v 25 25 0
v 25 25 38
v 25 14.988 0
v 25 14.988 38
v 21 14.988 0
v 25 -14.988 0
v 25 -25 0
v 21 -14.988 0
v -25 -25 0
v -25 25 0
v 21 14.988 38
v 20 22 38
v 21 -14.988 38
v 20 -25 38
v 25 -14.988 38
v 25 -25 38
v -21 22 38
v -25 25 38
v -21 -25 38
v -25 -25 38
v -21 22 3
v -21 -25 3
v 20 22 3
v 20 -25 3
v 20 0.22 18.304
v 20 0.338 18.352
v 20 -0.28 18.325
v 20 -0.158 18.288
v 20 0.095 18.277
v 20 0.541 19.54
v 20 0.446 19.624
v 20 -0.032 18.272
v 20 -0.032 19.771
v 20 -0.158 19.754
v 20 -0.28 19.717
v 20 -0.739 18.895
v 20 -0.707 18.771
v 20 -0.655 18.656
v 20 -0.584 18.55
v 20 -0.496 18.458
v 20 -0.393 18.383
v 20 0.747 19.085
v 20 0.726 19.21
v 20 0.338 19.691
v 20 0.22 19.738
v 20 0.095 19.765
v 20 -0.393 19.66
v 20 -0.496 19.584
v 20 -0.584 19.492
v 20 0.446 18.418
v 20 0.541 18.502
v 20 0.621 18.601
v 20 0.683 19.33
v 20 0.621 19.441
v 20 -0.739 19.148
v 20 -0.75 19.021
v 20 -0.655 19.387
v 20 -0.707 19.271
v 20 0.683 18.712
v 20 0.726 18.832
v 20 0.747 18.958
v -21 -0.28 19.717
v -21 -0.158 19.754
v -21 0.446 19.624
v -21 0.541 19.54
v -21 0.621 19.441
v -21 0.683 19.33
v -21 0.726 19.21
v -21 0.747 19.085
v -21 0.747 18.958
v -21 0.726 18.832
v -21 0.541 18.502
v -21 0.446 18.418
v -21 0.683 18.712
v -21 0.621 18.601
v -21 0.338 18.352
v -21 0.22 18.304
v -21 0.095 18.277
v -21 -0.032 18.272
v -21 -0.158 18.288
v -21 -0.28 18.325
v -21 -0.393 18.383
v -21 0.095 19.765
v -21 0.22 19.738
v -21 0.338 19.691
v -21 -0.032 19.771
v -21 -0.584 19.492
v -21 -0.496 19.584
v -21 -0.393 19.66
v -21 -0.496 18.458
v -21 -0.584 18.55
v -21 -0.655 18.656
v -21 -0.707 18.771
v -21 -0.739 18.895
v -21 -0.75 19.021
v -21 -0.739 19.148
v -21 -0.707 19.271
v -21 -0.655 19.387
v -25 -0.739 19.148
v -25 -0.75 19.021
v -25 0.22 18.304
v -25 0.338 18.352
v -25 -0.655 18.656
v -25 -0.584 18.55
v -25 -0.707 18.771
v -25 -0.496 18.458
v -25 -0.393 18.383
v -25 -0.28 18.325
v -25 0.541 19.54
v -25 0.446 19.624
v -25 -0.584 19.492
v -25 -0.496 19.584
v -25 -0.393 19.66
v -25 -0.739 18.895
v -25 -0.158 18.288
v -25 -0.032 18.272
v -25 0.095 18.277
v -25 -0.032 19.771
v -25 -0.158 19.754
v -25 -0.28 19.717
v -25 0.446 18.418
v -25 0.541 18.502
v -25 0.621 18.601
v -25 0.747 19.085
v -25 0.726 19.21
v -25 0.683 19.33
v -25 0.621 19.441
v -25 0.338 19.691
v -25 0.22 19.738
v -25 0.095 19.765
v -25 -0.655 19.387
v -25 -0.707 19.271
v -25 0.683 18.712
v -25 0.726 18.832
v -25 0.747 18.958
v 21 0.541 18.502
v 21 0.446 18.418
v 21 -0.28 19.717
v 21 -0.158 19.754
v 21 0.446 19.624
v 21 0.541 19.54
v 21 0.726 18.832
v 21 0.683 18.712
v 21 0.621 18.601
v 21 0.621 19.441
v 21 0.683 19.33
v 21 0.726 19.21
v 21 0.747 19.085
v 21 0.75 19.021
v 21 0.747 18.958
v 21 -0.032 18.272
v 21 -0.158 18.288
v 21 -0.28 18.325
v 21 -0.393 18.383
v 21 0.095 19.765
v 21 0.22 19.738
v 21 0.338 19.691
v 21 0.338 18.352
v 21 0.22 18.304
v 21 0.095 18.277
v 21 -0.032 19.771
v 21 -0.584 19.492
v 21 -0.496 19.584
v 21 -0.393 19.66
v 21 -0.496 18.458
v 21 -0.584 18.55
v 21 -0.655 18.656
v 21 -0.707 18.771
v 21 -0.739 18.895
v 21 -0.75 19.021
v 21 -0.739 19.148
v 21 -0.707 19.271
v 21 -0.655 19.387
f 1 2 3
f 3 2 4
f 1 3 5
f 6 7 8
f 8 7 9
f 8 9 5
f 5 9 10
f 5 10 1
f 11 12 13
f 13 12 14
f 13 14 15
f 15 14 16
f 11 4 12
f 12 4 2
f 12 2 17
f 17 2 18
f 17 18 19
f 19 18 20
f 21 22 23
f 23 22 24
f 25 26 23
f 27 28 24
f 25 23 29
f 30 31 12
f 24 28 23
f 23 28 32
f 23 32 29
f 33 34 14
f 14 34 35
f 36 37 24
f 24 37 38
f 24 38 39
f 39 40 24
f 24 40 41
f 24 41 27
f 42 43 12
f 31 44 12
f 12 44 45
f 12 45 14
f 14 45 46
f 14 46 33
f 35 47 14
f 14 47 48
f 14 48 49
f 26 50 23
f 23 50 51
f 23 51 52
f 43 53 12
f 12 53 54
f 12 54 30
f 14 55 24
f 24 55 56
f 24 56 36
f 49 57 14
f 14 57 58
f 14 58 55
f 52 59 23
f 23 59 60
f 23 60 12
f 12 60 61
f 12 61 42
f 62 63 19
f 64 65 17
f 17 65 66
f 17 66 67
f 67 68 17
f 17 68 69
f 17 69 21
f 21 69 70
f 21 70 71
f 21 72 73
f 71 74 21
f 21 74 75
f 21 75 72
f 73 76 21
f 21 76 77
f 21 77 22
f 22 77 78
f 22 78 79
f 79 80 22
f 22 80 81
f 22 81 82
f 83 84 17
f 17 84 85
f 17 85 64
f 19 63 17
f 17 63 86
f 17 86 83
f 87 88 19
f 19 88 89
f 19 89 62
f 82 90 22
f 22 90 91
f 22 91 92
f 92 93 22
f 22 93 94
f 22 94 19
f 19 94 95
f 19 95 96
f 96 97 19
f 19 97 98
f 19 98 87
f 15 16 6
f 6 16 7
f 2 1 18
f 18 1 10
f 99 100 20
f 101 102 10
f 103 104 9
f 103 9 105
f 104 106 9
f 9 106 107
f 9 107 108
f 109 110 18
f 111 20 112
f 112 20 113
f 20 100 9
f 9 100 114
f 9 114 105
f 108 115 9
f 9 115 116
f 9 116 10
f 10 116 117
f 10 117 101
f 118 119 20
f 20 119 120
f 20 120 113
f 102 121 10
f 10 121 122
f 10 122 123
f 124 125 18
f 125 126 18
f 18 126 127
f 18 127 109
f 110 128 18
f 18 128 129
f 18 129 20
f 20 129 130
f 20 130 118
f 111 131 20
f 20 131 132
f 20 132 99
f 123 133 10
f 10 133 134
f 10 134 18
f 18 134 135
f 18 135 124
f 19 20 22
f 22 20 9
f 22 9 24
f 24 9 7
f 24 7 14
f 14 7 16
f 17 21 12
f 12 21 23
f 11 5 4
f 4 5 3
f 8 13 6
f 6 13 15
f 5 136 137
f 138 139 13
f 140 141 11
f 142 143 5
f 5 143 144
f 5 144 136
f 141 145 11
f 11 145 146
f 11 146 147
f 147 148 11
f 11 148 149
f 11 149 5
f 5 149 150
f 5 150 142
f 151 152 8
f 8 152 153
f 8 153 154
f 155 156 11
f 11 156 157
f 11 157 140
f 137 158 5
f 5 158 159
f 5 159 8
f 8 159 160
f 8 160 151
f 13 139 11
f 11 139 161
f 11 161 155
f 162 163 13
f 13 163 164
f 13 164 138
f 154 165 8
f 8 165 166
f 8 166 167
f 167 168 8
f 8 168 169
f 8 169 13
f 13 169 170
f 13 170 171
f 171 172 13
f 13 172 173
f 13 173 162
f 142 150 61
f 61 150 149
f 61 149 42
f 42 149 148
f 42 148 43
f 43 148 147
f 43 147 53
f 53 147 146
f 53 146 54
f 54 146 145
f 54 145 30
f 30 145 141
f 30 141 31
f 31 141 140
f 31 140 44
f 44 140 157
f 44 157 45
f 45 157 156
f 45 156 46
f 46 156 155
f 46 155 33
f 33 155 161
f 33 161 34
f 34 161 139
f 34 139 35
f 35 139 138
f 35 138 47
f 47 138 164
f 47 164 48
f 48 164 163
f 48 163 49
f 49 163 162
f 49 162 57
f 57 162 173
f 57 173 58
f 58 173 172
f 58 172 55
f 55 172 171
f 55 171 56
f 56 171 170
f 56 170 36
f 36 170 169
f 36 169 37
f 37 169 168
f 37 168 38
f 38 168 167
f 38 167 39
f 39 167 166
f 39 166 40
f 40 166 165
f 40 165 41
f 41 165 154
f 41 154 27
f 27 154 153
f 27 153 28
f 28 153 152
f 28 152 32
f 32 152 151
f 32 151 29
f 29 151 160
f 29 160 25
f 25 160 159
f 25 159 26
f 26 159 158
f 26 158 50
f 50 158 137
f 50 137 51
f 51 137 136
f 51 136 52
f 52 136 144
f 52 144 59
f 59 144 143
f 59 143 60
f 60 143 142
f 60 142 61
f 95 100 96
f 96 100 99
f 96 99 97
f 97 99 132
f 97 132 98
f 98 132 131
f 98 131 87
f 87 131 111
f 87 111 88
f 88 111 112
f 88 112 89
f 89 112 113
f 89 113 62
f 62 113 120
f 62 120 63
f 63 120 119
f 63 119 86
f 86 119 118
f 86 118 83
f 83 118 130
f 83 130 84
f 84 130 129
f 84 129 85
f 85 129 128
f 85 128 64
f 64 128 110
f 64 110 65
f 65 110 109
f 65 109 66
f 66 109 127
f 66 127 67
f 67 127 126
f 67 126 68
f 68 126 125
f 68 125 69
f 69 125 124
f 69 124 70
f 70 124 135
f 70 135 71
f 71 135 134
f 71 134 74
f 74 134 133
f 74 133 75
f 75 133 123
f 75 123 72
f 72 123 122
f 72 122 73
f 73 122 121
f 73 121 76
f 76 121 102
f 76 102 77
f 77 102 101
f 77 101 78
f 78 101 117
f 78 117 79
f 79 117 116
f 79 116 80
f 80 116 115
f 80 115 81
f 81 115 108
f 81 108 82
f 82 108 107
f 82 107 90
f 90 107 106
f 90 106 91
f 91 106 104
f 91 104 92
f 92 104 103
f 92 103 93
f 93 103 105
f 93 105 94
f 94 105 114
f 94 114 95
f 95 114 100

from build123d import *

# Parameters (mm, degrees)
SKETCH8_W            = 50
SKETCH8_H            = 50
BOSS_EXTRUDE7_DEPTH  = 3
SKETCH9_W            = 38
SKETCH9_H            = 50
BOSS_EXTRUDE8_DEPTH  = 5
SKETCH10_W           = 38
SKETCH10_H           = 50
BOSS_EXTRUDE9_DEPTH  = 4
SKETCH11_W           = 50
SKETCH11_H           = 38
BOSS_EXTRUDE10_DEPTH = 3
SKETCH13_W           = 38
SKETCH13_H           = 29.975664986
CUT_EXTRUDE1_DEPTH   = 4
SKETCH14_R           = 0.75
CUT_EXTRUDE3_DEPTH   = 68


with BuildPart() as part:
    # Sketch8 → Boss-Extrude7 (new body)
    with BuildSketch(Plane.XY):
        Rectangle(SKETCH8_W, SKETCH8_H)
    extrude(amount=BOSS_EXTRUDE7_DEPTH)

    # Sketch9 → Boss-Extrude8 (add)
    with BuildSketch(Plane(origin=(25, 0, 0), x_dir=(0, 0, -1), z_dir=(1, 0, 0))):
        with Locations((-19, 0)):
            Rectangle(SKETCH9_W, SKETCH9_H)
    extrude(amount=-BOSS_EXTRUDE8_DEPTH)

    # Sketch10 → Boss-Extrude9 (add)
    with BuildSketch(Plane.ZY.offset(25)):
        with Locations((19, 0)):
            Rectangle(SKETCH10_W, SKETCH10_H)
    extrude(amount=-BOSS_EXTRUDE9_DEPTH)

    # Sketch11 → Boss-Extrude10 (add)
    with BuildSketch(Plane(origin=(0, 25, 0), x_dir=(1, 0, 0), z_dir=(0, 1, 0))):
        with Locations((0, -19)):
            Rectangle(SKETCH11_W, SKETCH11_H)
    extrude(amount=-BOSS_EXTRUDE10_DEPTH)

    # Sketch13 → Cut-Extrude1 (cut)
    with BuildSketch(Plane(origin=(25, 0, 0), x_dir=(0, 0, -1), z_dir=(1, 0, 0))):
        with Locations((-19, 0)):
            Rectangle(SKETCH13_W, SKETCH13_H)
    extrude(amount=-CUT_EXTRUDE1_DEPTH, mode=Mode.SUBTRACT)

    # Sketch14 → Cut-Extrude3 (cut)
    with BuildSketch(Plane.ZY.offset(25)):
        with Locations(Location((19.021319819, 0, 0), (0, 0, 270))):
            Circle(SKETCH14_R)
    extrude(amount=-CUT_EXTRUDE3_DEPTH, mode=Mode.SUBTRACT)


solid = part.part
